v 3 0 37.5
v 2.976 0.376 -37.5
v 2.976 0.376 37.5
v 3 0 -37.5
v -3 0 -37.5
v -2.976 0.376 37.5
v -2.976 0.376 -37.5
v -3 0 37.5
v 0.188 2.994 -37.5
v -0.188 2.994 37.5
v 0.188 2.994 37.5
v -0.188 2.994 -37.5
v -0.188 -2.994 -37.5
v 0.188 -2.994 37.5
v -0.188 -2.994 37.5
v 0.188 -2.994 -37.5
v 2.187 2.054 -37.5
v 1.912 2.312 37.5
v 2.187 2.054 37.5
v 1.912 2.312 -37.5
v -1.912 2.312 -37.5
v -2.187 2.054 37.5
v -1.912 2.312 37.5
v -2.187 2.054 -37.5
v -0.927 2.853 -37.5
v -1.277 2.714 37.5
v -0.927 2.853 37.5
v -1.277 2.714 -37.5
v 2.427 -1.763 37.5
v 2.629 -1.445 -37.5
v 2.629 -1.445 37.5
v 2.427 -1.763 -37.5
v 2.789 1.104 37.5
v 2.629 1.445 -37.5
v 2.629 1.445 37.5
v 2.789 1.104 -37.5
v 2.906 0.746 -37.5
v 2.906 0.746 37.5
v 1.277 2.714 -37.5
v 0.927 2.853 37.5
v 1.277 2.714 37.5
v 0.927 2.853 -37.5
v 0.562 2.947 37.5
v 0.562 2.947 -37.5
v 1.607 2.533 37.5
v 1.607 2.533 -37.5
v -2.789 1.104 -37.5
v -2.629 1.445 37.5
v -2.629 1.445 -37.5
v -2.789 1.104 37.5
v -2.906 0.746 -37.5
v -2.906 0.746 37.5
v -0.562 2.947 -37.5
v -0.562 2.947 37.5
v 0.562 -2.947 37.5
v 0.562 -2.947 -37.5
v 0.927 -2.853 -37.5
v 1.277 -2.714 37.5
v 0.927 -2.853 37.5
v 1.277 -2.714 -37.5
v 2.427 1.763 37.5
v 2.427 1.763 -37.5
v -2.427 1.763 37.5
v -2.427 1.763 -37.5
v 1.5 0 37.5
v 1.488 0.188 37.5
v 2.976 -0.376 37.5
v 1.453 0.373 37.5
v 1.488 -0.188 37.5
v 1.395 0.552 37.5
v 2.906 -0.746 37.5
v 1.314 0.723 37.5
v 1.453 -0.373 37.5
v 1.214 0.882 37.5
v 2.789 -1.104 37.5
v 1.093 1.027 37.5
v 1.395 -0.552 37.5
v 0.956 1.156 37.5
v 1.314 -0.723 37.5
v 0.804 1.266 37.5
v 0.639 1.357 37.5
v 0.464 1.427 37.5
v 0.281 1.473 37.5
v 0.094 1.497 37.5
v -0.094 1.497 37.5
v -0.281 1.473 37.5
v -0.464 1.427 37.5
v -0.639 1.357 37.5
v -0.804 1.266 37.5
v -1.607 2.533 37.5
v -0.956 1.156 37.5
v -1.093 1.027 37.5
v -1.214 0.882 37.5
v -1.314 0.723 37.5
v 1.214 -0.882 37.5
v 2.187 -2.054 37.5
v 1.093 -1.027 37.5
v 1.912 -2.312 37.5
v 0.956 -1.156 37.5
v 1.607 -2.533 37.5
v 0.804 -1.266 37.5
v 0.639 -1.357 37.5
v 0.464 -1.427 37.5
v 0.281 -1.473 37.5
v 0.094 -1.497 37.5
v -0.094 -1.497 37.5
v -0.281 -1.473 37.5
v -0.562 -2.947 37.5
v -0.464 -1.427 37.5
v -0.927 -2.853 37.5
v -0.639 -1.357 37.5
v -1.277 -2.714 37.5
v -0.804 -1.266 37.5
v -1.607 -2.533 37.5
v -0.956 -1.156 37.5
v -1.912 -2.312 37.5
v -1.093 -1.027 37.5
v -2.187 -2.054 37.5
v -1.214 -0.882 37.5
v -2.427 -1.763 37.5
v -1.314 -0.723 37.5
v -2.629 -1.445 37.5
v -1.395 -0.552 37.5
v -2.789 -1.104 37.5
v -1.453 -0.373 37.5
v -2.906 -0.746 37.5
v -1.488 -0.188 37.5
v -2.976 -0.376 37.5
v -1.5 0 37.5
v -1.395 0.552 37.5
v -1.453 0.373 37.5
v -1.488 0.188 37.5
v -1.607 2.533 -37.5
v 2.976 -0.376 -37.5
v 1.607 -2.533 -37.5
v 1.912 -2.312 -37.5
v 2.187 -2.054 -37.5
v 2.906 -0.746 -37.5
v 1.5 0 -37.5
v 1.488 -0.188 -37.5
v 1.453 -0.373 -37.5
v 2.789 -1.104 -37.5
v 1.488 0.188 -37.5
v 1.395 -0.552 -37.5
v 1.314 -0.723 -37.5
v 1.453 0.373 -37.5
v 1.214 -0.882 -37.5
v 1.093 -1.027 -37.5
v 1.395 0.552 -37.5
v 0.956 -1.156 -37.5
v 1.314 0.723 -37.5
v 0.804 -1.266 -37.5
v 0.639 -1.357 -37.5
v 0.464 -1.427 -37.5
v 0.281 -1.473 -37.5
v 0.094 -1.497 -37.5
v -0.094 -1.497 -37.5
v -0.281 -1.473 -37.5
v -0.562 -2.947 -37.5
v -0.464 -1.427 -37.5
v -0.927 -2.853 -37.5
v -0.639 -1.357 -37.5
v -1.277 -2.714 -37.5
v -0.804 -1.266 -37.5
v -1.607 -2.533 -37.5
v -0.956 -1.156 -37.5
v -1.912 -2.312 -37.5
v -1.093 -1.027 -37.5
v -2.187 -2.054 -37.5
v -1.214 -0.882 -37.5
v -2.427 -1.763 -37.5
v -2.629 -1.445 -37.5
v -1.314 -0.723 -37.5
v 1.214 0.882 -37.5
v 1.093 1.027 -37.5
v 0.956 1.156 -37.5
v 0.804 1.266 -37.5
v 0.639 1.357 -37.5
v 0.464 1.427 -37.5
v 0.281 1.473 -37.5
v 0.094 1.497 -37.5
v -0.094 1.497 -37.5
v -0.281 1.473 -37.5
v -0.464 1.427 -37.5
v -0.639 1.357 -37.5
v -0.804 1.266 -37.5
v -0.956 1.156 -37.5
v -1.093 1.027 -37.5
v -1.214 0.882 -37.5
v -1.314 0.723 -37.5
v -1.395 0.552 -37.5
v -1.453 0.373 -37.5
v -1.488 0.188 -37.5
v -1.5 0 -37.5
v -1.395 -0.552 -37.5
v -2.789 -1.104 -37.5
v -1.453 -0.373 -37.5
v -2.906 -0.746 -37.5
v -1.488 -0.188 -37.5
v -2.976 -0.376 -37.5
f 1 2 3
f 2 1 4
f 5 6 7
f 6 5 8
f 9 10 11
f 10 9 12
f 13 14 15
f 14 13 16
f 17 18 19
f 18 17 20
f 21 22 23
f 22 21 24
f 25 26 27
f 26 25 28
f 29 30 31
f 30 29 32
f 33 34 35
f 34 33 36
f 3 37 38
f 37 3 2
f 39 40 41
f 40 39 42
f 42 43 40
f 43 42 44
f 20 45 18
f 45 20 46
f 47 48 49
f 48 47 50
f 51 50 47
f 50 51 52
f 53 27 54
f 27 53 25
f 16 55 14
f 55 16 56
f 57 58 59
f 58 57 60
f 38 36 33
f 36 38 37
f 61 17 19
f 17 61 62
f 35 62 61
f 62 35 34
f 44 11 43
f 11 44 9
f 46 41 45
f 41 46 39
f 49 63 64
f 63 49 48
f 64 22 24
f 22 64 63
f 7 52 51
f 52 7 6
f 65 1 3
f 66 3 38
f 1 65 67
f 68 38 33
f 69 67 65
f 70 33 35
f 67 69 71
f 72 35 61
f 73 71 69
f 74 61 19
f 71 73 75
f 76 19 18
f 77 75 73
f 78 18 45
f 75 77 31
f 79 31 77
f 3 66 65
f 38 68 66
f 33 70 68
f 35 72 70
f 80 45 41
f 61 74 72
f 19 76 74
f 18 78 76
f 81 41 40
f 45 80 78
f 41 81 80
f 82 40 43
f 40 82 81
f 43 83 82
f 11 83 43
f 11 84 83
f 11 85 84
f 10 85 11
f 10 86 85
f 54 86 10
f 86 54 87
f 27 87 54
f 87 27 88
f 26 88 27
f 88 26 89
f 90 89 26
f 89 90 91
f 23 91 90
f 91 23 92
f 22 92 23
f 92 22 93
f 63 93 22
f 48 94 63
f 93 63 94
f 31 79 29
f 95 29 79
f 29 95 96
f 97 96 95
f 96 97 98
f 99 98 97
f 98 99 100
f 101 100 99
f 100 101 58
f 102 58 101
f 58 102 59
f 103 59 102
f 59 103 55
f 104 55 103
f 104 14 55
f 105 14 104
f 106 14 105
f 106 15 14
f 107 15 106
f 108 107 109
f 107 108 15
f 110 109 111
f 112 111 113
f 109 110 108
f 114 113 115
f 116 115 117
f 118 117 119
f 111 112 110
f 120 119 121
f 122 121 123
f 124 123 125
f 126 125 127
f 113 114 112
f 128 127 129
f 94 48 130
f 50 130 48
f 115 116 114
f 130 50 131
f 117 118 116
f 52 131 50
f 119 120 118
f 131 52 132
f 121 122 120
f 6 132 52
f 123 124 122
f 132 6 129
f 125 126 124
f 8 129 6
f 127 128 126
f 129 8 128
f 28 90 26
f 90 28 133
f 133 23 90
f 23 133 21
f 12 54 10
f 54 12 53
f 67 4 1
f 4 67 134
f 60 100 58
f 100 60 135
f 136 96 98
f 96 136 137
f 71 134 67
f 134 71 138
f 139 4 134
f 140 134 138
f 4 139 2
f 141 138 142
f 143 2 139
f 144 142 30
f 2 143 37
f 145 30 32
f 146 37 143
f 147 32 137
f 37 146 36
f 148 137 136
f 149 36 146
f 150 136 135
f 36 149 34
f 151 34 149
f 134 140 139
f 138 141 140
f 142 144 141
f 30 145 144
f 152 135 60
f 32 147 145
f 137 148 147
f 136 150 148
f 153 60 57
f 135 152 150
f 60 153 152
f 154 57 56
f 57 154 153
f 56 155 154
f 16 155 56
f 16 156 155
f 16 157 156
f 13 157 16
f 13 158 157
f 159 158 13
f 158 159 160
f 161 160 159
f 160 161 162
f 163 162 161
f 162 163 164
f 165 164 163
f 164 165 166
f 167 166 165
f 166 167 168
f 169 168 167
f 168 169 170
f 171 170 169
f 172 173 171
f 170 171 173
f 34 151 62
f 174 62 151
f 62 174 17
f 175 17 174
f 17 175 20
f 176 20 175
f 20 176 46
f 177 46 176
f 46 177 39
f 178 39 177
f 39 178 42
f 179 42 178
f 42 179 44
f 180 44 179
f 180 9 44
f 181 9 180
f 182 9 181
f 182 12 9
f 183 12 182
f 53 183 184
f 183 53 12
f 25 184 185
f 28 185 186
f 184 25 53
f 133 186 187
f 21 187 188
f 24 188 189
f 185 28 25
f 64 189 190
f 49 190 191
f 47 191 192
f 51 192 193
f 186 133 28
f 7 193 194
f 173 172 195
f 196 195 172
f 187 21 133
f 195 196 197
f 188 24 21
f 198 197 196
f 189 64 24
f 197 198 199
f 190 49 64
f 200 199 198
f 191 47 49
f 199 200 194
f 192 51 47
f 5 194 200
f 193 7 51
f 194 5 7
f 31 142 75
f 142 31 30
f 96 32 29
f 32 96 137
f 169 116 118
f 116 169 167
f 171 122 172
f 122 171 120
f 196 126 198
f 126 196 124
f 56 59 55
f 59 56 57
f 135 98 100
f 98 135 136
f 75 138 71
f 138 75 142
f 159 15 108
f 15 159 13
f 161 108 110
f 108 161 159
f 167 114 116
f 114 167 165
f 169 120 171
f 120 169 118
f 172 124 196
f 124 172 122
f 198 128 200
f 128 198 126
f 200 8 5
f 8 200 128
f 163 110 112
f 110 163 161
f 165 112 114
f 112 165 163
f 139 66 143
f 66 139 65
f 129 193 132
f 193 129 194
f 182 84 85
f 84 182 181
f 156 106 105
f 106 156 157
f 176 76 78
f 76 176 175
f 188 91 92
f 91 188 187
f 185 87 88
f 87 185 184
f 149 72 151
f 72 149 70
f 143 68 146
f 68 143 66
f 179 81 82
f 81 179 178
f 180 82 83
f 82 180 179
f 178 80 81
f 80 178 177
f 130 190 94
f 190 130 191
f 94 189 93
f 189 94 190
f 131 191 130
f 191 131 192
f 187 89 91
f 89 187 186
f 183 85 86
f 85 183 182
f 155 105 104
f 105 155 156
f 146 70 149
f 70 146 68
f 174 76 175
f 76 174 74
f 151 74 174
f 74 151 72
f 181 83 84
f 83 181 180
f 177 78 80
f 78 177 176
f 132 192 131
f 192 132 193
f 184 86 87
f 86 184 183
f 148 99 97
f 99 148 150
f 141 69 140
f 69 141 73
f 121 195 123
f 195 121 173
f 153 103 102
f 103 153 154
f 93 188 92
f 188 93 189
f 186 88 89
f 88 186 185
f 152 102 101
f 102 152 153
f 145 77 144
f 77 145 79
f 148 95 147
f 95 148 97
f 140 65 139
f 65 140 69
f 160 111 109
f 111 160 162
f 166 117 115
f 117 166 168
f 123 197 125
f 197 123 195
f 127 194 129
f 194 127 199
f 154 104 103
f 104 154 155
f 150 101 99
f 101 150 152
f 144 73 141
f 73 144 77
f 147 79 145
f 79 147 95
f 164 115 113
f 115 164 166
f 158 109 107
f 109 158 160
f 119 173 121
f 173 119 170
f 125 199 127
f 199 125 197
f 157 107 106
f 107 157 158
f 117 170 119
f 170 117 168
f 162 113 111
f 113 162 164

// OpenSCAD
$fn = 50;


difference() {
	union() {
		translate(v = [0, 0, -37.5000000000]) {
			cylinder(h = 75, r = 3.0000000000);
		}
	}
	union() {
		translate(v = [0, 0, -100.0000000000]) {
			cylinder(h = 200, r = 1.5000000000);
		}
	}
}
